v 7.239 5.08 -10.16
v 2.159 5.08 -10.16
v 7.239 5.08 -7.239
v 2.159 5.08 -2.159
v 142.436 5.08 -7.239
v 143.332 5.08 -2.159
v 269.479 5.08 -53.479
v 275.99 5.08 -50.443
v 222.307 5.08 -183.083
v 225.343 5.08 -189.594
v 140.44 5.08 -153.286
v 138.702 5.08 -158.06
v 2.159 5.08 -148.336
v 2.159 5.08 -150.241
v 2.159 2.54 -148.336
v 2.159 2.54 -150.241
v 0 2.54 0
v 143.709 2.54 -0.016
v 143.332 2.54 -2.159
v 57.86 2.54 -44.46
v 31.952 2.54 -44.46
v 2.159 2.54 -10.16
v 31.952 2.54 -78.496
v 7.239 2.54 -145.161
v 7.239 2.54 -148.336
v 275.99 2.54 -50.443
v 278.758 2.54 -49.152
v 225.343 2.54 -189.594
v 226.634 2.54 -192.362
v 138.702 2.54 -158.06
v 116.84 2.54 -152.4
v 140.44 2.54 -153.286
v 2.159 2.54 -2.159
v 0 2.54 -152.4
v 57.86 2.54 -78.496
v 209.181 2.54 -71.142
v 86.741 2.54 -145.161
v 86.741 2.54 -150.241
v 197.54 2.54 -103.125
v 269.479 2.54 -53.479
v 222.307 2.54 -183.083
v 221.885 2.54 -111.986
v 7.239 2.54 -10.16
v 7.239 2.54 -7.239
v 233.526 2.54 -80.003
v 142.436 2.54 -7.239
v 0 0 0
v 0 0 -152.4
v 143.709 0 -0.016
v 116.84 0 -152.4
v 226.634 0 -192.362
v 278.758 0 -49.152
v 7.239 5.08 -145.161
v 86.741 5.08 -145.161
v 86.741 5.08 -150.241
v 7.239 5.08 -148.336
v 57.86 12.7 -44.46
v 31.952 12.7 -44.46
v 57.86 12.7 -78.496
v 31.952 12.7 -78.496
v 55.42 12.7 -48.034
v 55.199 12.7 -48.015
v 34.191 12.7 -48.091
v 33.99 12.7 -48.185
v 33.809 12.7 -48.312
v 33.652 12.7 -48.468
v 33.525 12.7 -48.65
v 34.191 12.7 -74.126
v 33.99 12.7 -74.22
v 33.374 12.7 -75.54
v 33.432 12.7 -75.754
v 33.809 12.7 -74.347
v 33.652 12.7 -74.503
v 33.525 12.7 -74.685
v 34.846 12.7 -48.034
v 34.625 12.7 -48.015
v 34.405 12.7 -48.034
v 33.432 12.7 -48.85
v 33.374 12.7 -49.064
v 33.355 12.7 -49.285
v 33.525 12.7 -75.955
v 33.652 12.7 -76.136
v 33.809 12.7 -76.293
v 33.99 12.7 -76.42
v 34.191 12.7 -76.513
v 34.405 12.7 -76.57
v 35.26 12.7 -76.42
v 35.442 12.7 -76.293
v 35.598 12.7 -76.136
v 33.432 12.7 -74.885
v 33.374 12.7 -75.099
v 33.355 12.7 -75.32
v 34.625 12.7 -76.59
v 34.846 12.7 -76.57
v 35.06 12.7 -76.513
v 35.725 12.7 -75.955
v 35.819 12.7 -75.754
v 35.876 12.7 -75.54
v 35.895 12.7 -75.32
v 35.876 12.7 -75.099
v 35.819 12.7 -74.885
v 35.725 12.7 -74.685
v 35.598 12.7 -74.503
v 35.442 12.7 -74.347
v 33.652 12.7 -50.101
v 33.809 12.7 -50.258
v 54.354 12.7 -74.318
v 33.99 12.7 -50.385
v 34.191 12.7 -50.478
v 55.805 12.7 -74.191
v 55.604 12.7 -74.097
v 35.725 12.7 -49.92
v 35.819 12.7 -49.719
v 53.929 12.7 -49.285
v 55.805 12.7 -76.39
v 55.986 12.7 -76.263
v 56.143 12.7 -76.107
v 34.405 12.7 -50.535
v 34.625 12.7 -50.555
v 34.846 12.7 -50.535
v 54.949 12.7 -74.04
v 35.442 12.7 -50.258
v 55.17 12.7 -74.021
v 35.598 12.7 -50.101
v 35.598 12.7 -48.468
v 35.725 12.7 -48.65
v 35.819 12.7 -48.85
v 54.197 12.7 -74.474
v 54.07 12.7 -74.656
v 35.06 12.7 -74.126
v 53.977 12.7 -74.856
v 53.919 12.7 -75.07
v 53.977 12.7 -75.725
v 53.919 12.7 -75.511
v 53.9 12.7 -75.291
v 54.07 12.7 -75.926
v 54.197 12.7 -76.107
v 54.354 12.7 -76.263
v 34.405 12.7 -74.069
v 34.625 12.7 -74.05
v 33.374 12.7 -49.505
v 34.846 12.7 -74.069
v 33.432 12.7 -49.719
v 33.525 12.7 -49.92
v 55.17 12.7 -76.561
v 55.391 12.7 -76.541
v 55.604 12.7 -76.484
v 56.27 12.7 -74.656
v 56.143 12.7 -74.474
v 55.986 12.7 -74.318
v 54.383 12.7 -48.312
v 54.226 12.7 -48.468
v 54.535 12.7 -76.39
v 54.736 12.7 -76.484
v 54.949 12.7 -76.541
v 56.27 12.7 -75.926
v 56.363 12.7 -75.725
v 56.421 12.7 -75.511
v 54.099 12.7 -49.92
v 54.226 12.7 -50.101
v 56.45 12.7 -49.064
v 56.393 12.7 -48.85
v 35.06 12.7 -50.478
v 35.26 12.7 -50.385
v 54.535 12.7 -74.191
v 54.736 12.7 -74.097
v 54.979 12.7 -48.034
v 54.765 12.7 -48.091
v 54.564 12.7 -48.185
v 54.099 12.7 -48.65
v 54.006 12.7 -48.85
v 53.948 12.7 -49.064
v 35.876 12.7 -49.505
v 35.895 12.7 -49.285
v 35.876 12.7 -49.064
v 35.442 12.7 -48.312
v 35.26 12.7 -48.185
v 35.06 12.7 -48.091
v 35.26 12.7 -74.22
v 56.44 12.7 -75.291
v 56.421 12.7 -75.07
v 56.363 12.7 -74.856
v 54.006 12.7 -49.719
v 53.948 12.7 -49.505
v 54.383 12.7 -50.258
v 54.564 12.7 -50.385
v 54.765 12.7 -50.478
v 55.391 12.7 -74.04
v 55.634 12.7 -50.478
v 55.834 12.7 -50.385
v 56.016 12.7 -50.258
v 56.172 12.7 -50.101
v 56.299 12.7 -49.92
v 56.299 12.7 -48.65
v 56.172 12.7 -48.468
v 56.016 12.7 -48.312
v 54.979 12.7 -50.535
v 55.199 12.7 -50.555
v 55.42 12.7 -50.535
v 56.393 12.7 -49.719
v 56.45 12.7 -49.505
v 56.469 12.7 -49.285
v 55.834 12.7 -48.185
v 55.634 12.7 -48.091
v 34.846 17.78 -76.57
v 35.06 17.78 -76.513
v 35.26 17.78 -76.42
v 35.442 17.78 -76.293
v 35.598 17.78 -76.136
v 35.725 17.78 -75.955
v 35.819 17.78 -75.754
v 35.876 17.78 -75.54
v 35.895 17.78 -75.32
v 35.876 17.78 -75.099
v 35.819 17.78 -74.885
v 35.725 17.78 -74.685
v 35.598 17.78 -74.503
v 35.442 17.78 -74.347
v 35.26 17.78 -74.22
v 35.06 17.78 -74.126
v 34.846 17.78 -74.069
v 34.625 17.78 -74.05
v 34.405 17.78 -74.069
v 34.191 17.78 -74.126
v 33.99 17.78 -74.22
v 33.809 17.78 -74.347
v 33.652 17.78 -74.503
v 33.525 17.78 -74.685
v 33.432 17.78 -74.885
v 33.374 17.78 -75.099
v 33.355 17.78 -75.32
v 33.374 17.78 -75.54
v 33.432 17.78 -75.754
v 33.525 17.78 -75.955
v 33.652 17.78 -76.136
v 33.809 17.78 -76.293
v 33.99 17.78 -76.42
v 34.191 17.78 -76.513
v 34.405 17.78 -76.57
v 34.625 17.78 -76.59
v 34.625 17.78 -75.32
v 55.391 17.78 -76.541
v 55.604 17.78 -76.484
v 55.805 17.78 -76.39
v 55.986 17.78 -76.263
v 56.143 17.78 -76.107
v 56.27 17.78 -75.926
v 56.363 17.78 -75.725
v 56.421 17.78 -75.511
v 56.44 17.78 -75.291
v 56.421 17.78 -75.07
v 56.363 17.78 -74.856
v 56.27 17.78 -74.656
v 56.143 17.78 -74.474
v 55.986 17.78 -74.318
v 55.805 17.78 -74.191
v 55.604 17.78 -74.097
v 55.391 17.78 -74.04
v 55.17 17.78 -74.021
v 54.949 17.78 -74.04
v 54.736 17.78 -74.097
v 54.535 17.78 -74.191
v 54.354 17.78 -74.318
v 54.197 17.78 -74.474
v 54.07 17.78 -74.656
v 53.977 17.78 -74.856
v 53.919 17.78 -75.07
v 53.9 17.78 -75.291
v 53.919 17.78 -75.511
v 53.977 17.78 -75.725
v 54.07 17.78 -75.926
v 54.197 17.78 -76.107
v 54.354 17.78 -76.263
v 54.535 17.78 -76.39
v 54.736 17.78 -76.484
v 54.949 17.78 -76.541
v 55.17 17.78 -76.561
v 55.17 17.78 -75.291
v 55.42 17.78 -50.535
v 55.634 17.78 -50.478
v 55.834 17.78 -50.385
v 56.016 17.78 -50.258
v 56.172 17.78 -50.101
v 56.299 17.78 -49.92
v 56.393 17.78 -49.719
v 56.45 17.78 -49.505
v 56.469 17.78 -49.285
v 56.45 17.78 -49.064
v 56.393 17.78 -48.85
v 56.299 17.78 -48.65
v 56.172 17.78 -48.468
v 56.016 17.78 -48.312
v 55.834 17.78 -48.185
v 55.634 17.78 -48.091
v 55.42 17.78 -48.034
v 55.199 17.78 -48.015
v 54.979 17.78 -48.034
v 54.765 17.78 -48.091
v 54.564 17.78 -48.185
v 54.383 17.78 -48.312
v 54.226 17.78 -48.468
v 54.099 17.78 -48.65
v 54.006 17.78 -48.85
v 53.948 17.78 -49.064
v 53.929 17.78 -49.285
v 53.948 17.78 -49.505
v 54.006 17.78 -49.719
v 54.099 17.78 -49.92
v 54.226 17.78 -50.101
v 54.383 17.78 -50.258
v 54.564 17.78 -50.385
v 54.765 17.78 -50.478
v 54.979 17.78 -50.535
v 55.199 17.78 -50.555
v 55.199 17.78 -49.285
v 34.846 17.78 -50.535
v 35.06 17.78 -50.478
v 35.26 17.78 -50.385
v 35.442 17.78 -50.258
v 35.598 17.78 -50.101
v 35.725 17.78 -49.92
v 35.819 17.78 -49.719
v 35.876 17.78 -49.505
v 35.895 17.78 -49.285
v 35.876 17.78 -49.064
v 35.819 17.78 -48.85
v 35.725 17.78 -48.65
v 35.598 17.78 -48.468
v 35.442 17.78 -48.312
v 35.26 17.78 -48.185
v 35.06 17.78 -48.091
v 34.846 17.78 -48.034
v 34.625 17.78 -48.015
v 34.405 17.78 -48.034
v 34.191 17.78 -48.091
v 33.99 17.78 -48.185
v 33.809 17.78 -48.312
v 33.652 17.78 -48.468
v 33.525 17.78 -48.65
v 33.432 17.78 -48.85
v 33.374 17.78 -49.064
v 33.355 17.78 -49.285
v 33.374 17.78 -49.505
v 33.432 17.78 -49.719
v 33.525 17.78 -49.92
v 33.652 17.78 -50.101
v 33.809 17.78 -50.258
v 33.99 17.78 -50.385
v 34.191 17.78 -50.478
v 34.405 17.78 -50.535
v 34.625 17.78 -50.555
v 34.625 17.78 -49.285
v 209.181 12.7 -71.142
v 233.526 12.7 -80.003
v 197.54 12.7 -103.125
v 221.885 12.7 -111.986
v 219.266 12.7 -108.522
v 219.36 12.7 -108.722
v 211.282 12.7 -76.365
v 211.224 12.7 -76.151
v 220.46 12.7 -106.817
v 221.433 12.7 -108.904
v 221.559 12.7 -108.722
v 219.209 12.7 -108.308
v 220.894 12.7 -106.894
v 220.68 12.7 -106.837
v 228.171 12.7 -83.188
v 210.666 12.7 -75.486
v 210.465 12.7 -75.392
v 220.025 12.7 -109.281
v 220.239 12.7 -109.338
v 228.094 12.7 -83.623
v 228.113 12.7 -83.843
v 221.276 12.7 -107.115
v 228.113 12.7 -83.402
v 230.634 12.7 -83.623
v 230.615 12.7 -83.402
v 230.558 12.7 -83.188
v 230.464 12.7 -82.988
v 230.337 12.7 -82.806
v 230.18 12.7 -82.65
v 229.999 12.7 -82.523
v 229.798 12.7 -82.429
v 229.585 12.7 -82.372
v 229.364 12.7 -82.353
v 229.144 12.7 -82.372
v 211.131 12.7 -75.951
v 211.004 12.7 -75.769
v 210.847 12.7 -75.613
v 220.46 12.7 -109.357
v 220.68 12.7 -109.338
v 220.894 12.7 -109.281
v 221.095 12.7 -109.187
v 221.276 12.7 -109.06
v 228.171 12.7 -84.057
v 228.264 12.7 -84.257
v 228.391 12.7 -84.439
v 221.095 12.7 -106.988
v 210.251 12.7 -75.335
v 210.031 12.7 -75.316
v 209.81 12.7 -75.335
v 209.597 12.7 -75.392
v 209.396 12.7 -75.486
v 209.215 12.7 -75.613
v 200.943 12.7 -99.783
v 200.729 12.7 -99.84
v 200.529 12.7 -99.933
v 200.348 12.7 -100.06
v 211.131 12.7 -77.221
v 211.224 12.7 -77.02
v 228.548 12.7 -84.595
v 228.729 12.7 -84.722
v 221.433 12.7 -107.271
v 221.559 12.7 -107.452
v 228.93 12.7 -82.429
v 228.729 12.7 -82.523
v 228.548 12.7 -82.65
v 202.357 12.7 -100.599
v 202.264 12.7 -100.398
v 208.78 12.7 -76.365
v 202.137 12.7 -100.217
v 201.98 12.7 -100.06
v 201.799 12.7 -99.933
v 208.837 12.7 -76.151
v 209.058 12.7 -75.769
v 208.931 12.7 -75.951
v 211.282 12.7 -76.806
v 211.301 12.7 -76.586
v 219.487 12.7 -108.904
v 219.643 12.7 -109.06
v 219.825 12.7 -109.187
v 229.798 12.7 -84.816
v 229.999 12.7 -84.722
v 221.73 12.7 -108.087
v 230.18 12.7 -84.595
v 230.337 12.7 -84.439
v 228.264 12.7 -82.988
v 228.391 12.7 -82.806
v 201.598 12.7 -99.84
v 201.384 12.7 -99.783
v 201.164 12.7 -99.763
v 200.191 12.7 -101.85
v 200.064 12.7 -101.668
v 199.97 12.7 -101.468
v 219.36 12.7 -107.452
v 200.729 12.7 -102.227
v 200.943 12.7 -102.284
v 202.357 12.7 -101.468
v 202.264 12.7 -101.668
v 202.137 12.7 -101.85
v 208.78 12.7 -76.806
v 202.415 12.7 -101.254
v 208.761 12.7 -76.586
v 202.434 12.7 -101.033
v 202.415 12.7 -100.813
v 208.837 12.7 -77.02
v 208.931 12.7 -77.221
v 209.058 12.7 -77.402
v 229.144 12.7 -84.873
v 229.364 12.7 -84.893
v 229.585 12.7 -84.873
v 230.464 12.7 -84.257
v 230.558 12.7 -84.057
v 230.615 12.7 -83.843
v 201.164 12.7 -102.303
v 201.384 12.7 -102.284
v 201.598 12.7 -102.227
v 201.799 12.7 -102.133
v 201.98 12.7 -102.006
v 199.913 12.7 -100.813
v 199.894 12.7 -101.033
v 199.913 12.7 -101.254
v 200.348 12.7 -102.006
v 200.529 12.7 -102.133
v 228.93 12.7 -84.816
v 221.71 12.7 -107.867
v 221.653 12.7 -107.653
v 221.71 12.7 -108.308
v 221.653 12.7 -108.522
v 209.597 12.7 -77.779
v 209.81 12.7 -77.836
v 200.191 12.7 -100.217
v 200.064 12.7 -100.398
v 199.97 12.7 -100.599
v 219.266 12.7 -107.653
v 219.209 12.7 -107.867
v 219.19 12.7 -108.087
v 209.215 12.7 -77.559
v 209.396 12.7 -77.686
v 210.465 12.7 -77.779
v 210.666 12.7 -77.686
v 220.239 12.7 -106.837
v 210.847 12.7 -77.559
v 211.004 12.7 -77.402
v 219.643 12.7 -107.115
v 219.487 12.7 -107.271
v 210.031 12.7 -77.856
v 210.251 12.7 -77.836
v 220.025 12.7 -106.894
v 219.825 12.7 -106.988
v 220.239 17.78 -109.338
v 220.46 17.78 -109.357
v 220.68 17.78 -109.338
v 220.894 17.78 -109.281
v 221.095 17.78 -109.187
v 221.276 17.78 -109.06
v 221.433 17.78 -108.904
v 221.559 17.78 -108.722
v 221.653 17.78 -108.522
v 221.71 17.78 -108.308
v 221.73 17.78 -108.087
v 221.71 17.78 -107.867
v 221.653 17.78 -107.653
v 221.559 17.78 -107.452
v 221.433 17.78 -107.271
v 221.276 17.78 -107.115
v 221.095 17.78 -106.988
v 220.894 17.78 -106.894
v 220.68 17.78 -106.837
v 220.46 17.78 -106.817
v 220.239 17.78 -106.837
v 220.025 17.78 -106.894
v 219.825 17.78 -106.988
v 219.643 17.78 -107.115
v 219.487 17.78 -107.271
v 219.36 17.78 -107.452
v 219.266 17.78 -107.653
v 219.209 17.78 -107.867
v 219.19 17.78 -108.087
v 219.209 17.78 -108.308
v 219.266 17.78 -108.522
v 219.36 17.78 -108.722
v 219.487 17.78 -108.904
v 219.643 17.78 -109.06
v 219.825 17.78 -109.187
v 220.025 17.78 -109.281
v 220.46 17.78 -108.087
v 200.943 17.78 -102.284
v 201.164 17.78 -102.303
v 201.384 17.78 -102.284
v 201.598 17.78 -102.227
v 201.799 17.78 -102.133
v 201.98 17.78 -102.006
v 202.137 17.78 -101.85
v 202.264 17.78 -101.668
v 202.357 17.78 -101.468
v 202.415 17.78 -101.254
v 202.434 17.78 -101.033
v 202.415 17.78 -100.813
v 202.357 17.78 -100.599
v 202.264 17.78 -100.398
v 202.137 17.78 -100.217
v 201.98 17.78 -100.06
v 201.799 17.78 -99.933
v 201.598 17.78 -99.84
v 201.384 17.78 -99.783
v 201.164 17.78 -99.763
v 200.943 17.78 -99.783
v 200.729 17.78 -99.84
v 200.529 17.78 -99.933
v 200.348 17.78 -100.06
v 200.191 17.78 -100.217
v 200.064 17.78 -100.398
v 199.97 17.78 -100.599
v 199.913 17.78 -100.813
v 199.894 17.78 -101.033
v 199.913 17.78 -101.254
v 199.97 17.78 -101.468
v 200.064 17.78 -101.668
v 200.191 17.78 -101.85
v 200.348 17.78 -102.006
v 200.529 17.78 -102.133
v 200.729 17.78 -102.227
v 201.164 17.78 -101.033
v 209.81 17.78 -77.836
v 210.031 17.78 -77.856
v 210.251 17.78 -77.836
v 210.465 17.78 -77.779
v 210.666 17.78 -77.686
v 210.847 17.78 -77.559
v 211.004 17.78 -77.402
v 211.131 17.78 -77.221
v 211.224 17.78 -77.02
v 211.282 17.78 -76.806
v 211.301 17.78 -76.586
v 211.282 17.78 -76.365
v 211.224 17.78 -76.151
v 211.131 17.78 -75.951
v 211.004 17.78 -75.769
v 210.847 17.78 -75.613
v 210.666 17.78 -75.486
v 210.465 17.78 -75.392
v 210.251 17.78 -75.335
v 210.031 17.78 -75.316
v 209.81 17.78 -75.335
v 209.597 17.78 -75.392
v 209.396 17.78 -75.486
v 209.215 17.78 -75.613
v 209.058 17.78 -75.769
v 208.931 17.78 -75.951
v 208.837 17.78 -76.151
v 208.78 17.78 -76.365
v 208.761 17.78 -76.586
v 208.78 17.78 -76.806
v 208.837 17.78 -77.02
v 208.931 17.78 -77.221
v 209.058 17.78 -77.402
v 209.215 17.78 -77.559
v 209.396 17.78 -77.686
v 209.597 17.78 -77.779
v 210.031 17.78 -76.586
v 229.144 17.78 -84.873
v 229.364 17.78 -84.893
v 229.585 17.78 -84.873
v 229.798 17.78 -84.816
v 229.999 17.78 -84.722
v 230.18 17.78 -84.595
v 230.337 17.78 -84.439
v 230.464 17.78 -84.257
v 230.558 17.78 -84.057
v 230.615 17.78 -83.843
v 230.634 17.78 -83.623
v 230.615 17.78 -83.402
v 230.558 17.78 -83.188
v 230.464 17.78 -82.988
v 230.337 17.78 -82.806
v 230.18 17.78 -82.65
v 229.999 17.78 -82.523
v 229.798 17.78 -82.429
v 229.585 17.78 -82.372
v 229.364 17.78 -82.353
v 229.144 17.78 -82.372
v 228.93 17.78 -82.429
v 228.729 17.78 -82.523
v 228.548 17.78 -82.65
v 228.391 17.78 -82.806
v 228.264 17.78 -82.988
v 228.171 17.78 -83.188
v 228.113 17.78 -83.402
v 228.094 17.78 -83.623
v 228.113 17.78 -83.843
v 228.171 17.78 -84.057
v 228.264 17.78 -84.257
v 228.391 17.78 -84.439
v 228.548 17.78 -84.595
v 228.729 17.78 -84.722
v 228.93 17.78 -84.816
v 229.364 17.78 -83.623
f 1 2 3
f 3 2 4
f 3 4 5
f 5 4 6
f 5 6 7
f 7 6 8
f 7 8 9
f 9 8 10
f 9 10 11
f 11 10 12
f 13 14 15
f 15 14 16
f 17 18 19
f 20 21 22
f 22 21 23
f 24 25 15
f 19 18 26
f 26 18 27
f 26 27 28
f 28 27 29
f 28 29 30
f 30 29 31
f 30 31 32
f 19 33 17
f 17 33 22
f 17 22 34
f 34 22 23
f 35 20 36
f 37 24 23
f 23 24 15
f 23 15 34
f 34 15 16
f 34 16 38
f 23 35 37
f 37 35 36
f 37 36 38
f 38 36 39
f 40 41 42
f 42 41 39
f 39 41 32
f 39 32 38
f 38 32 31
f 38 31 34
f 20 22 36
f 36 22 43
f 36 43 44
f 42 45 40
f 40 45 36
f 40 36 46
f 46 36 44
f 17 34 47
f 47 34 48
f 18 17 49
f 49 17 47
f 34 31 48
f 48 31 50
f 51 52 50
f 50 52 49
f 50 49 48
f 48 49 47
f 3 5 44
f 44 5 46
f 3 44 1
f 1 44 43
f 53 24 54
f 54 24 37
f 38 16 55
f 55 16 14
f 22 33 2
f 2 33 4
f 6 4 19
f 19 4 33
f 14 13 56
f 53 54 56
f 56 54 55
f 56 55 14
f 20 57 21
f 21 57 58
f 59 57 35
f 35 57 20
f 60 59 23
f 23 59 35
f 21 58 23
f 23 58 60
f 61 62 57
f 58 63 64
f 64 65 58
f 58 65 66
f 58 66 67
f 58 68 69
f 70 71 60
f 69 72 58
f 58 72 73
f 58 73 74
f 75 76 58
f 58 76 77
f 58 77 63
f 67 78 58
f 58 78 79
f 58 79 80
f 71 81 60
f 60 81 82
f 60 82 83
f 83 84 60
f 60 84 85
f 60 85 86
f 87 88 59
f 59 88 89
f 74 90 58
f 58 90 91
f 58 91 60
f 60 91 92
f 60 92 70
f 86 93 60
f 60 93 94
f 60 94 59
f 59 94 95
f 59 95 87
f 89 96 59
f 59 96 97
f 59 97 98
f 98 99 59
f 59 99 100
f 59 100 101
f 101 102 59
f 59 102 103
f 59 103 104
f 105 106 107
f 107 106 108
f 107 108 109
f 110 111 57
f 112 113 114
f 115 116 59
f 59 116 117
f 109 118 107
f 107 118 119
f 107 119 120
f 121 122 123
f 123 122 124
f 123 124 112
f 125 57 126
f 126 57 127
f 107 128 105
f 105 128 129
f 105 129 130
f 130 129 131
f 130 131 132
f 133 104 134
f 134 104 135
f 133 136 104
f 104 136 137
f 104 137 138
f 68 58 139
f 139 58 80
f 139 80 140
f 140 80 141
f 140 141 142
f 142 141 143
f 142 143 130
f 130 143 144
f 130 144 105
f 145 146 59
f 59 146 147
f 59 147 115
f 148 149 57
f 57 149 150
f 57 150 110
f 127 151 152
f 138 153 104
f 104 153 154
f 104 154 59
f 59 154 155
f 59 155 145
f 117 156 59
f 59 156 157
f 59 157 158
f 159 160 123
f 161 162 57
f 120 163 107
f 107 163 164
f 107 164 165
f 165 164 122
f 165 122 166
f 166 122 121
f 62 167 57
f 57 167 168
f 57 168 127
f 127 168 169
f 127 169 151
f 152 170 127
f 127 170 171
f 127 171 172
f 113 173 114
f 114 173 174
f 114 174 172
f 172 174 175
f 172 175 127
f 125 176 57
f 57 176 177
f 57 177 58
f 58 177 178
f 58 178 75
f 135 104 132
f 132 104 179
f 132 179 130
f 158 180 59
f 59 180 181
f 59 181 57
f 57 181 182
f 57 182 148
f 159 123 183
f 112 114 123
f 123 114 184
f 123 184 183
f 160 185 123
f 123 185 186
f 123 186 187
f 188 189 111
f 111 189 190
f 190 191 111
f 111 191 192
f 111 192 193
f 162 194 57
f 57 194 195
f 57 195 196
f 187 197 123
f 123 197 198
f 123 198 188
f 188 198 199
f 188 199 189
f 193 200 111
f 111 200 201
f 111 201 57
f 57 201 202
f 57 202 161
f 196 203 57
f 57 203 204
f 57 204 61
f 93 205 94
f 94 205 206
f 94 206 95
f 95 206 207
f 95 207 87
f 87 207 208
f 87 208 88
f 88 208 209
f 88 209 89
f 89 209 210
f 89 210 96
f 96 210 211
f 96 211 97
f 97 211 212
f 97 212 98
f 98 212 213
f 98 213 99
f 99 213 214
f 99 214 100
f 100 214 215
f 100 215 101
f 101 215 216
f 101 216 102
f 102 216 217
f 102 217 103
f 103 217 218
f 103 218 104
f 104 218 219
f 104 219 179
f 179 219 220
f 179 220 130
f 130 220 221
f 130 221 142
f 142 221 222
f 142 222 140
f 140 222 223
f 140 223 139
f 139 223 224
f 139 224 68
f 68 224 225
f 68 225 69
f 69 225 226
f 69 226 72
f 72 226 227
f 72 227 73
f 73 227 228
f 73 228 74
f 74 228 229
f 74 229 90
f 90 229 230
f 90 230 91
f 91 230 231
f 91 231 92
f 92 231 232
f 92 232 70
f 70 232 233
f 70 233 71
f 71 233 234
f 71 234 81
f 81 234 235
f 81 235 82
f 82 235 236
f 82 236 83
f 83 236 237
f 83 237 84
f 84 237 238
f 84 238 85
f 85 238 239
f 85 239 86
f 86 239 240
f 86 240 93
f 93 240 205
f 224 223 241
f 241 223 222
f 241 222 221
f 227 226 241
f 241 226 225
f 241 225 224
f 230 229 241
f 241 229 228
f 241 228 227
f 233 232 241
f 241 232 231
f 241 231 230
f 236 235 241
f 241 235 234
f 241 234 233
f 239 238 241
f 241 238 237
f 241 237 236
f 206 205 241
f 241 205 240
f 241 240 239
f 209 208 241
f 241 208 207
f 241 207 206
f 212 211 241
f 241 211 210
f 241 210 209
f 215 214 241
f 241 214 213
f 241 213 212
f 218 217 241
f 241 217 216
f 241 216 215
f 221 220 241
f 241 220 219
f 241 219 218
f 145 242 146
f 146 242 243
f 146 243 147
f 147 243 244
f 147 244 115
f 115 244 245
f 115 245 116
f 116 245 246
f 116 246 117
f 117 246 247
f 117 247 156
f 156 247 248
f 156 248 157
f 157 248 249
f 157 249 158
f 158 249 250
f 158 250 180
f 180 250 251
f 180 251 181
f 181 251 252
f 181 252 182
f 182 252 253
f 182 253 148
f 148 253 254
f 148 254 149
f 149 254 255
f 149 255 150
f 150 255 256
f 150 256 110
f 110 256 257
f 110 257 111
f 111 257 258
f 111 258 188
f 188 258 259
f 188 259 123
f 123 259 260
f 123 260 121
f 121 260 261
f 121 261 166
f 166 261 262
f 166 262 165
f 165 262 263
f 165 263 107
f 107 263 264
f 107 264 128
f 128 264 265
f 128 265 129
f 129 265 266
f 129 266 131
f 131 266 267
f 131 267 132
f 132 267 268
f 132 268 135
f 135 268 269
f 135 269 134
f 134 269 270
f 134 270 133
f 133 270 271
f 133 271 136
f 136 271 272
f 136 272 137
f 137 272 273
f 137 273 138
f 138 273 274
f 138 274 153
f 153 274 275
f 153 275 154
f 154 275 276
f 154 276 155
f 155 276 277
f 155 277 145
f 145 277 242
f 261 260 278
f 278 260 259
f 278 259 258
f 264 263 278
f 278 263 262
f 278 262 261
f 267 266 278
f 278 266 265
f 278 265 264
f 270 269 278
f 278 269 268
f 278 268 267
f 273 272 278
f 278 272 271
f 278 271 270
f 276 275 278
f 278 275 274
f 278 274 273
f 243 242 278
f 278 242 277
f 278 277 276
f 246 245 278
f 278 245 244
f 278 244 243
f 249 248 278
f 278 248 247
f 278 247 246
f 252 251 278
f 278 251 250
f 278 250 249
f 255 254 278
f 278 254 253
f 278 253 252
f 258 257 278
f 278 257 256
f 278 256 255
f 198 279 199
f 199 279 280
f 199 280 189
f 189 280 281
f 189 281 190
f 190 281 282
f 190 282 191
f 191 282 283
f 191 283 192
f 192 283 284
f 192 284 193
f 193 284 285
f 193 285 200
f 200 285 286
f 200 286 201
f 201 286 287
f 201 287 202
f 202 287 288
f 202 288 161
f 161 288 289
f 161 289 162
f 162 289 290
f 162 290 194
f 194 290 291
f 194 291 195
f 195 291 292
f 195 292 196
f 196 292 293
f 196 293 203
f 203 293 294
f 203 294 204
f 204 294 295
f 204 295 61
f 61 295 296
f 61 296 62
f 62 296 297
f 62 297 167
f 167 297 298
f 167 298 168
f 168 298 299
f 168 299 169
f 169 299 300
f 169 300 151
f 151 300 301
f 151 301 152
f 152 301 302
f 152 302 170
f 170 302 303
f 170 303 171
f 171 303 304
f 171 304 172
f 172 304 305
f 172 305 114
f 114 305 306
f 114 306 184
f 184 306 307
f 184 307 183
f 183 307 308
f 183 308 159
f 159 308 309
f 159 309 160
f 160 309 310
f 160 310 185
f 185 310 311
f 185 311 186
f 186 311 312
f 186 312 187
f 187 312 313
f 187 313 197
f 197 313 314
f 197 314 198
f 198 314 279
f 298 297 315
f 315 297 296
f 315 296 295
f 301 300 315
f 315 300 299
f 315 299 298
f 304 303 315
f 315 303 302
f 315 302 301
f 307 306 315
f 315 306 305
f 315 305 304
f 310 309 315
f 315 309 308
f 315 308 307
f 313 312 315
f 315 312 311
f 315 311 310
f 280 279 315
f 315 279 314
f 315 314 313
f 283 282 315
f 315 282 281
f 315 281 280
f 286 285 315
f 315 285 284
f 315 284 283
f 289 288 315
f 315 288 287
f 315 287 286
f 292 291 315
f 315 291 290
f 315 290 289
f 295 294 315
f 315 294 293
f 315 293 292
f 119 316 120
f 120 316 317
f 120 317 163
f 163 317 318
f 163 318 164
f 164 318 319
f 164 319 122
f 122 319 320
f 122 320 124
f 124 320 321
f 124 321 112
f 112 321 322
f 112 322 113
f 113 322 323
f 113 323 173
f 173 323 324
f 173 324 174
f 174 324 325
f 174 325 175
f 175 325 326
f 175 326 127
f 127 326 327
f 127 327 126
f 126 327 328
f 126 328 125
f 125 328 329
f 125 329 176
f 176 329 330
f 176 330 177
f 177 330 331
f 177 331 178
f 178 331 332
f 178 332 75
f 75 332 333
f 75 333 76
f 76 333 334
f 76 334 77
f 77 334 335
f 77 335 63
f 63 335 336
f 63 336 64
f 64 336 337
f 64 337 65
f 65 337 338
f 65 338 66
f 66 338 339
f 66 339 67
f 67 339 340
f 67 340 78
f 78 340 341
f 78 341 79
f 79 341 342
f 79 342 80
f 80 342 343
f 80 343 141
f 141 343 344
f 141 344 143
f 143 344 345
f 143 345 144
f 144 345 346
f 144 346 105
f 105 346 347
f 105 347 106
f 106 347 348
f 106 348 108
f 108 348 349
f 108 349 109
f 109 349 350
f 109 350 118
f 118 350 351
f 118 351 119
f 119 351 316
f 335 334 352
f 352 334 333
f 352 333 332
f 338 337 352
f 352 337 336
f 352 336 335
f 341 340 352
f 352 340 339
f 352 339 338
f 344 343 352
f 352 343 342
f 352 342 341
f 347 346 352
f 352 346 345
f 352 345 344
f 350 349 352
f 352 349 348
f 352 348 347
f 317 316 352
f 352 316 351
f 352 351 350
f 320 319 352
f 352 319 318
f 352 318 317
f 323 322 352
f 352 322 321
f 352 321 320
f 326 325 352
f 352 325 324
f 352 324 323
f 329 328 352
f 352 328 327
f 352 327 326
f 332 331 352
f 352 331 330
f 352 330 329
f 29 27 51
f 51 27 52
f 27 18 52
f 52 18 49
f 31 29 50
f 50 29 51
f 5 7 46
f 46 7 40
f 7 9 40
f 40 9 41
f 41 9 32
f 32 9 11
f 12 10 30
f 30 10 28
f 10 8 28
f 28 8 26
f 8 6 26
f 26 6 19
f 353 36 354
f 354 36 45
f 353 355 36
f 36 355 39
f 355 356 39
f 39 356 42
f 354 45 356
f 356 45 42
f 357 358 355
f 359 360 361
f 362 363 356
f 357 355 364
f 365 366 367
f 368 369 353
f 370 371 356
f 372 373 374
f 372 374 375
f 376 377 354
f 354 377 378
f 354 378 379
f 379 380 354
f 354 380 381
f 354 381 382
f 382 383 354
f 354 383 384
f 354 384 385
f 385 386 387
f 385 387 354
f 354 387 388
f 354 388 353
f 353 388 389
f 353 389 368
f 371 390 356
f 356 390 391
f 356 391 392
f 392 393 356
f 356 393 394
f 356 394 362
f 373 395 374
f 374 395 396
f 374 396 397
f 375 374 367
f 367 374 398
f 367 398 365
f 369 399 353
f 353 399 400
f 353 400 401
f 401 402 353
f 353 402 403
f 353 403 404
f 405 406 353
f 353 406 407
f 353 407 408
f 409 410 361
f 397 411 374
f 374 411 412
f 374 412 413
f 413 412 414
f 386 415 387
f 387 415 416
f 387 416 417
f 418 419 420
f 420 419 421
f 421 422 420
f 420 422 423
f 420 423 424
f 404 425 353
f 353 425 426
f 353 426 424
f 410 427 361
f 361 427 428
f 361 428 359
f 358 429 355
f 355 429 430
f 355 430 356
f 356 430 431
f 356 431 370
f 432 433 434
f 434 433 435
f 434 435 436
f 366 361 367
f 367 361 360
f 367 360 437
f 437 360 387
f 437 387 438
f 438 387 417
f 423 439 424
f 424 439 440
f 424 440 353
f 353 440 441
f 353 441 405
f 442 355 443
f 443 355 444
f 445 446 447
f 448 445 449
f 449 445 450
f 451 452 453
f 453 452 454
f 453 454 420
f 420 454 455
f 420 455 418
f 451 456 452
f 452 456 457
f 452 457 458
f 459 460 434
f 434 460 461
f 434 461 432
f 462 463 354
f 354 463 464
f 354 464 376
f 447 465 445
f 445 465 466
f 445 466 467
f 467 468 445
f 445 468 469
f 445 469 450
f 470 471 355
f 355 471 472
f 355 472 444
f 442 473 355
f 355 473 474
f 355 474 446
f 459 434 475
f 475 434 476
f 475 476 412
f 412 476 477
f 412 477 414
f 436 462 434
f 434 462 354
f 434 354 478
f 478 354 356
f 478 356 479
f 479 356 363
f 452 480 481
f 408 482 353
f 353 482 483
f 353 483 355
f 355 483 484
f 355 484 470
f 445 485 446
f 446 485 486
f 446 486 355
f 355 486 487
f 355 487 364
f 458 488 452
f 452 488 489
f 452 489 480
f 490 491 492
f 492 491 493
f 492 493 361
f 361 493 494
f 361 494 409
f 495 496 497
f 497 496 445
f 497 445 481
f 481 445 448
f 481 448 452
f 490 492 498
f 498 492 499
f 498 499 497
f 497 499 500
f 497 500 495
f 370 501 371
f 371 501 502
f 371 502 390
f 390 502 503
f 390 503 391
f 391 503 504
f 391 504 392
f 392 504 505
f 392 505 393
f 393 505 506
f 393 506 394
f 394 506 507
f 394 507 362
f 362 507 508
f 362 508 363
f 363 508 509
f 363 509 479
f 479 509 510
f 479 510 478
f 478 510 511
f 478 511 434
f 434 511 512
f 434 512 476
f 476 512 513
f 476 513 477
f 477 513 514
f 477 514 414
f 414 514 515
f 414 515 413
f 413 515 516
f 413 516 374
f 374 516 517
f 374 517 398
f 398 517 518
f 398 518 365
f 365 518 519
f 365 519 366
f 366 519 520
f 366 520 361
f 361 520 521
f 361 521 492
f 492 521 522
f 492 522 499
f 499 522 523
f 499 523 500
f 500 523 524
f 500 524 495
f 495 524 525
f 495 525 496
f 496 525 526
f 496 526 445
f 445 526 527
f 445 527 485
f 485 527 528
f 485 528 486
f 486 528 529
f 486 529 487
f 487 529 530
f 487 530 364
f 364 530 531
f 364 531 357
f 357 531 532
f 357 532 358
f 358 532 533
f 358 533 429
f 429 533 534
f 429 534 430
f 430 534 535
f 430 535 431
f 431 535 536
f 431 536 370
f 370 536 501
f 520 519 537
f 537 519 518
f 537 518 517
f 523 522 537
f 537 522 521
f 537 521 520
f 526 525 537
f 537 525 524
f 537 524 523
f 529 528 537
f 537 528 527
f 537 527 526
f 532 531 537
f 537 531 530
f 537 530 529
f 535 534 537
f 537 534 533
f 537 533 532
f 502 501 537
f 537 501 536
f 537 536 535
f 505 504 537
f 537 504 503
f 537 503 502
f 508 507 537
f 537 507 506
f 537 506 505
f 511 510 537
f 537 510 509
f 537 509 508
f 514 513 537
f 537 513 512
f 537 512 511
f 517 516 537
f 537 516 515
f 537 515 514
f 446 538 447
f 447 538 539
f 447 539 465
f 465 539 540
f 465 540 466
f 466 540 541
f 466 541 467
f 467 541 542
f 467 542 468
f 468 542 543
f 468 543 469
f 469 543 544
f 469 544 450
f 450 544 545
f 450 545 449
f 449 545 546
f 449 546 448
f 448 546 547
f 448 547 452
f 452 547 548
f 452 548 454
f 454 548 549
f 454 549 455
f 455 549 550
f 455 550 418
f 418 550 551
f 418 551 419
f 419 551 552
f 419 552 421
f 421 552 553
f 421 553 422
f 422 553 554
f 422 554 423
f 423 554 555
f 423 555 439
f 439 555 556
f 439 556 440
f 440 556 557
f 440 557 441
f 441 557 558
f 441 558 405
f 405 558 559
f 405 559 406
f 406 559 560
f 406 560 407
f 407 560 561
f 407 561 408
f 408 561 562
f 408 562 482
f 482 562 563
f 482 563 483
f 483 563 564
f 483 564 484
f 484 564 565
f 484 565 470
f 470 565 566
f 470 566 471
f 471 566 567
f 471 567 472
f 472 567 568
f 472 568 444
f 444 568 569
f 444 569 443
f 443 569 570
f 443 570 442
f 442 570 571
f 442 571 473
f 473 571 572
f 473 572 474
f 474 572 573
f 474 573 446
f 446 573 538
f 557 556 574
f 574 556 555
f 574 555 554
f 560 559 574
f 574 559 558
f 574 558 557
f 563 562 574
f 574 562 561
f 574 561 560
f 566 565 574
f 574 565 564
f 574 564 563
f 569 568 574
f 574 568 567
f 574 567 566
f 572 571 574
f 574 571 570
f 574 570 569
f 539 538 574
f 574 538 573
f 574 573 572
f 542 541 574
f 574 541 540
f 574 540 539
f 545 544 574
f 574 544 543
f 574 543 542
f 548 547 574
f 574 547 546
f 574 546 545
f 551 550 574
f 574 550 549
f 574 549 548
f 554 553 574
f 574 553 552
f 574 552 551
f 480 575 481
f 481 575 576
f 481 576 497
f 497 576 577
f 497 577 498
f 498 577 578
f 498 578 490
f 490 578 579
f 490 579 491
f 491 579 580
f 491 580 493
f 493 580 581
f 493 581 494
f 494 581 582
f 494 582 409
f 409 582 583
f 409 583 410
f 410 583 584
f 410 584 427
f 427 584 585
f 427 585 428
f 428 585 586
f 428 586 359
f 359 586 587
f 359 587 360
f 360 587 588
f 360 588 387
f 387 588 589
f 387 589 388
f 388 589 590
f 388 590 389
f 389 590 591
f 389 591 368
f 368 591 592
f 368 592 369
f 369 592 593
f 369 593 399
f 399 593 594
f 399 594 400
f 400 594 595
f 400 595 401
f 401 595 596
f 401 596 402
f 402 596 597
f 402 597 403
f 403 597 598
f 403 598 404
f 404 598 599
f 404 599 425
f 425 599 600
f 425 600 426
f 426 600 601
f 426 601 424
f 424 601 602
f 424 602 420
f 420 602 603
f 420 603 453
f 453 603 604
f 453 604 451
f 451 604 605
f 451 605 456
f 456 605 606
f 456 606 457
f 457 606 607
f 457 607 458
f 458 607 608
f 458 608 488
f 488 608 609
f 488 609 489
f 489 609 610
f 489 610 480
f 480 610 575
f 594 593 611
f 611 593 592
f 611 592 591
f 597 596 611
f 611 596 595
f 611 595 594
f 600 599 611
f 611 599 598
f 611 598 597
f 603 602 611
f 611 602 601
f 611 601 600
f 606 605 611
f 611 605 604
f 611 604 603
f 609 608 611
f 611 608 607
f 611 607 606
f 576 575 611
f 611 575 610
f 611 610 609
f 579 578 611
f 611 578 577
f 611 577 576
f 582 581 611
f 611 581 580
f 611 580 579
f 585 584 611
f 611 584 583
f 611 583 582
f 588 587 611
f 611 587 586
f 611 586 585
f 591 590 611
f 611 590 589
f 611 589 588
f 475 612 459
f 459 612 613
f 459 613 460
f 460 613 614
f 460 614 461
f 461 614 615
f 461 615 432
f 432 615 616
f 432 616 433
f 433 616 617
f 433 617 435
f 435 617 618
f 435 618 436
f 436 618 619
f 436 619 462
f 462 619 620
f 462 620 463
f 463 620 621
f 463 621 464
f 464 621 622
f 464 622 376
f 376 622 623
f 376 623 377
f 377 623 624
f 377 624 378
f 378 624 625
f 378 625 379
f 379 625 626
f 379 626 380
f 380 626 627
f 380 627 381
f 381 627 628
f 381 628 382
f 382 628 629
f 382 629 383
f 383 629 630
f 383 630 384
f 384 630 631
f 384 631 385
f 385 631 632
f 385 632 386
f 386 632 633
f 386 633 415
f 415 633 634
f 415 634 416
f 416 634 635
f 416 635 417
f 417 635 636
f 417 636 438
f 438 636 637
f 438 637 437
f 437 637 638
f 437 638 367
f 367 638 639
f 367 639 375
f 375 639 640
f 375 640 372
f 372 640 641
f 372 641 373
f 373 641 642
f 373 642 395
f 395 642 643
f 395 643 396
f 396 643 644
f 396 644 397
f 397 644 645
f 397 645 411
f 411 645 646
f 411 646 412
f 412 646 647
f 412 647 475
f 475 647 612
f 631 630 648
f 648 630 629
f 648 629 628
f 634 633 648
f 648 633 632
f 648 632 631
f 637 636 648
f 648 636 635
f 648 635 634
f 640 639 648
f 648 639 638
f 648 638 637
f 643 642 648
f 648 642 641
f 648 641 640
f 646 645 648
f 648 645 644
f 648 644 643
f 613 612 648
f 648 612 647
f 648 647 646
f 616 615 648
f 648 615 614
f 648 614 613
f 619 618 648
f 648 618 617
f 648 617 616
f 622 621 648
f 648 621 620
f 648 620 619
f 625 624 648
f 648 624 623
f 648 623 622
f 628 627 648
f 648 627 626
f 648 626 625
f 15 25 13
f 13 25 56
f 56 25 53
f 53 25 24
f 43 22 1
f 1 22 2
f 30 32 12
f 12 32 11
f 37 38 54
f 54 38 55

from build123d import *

# Parameters (mm, degrees)
BOSS_EXTRUDE1_DEPTH = 2.54
BOSS_EXTRUDE2_DEPTH = 2.54
SKETCH5_W           = 25.908
SKETCH5_H           = 34.036
BOSS_EXTRUDE3_DEPTH = 12.7
SKETCH6_R           = 1.27
BOSS_EXTRUDE4_DEPTH = 5.08
SKETCH7_W           = 5.08
SKETCH7_H           = 138.176
CUT_EXTRUDE1_DEPTH  = 2.54
CUT_EXTRUDE2_DEPTH  = 2.54


with BuildPart() as part:
    # Sketch1 → Boss-Extrude1 (new body)
    with BuildSketch(Plane(origin=(0, 0, 0), x_dir=(1, 0, 0), z_dir=(0, 1, 0))):
        Polygon((0, 0), (0, 152.4), (116.84, 152.4), (143.709327723, 0.01647018), align=None)
    extrude(amount=BOSS_EXTRUDE1_DEPTH)

    # Sketch2 → Boss-Extrude2 (add)
    with BuildSketch(Plane(origin=(0, 2.54, 0), x_dir=(1, 0, 0), z_dir=(0, 1, 0))):
        Polygon((117.220689951, 150.241), (2.159, 150.241), (2.159, 2.159), (143.331541909, 2.159), (142.435800847, 7.239), (7.239, 7.239), (7.239, 145.161), (118.116431013, 145.161), align=None)
    extrude(amount=BOSS_EXTRUDE2_DEPTH)

    # Sketch5 → Boss-Extrude3 (add)
    with BuildSketch(Plane.XZ):
        with Locations((44.90593, -61.477652)):
            Rectangle(SKETCH5_W, SKETCH5_H)
    extrude(amount=-BOSS_EXTRUDE3_DEPTH)

    # Sketch6 → Boss-Extrude4 (add)
    with BuildSketch(Plane(origin=(0, 12.7, 0), x_dir=(1, 0, 0), z_dir=(0, 1, 0))):
        with Locations((34.625191146, 75.319771658)):
            Circle(SKETCH6_R)
        with Locations((55.169983581, 75.290564093)):
            Circle(SKETCH6_R)
        with Locations((55.199191146, 49.284771658)):
            Circle(SKETCH6_R)
        with Locations((34.625191146, 49.284771658)):
            Circle(SKETCH6_R)
    extrude(amount=BOSS_EXTRUDE4_DEPTH)

    # Mirror2: part across plane


with BuildPart() as part_1:
    add(part.part)
    add(part.part.mirror(Plane(origin=(116.84, 2.54, -152.4), x_dir=(0.173648178, 0, 0.984807753), z_dir=(0.984807753, 0, -0.173648178))))

    # Sketch7 → Cut-Extrude1 (cut)
    with BuildSketch(Plane(origin=(0, 5.08, 0), x_dir=(1, 0, 0), z_dir=(0, 1, 0))):
        with Locations((4.699, 79.248)):
            Rectangle(SKETCH7_W, SKETCH7_H)
    extrude(amount=-CUT_EXTRUDE1_DEPTH, mode=Mode.SUBTRACT)

    # Sketch8 → Cut-Extrude2 (cut)
    with BuildSketch(Plane(origin=(0, 5.08, 0), x_dir=(1, 0, 0), z_dir=(0, 1, 0))):
        Polygon((86.740689951, 150.241), (86.740689951, 145.161), (118.116431013, 145.161), (140.439525591, 153.285941963), (138.702063263, 158.059580476), (117.220689951, 150.241), align=None)
    extrude(amount=-CUT_EXTRUDE2_DEPTH, mode=Mode.SUBTRACT)


solid = part_1.part
